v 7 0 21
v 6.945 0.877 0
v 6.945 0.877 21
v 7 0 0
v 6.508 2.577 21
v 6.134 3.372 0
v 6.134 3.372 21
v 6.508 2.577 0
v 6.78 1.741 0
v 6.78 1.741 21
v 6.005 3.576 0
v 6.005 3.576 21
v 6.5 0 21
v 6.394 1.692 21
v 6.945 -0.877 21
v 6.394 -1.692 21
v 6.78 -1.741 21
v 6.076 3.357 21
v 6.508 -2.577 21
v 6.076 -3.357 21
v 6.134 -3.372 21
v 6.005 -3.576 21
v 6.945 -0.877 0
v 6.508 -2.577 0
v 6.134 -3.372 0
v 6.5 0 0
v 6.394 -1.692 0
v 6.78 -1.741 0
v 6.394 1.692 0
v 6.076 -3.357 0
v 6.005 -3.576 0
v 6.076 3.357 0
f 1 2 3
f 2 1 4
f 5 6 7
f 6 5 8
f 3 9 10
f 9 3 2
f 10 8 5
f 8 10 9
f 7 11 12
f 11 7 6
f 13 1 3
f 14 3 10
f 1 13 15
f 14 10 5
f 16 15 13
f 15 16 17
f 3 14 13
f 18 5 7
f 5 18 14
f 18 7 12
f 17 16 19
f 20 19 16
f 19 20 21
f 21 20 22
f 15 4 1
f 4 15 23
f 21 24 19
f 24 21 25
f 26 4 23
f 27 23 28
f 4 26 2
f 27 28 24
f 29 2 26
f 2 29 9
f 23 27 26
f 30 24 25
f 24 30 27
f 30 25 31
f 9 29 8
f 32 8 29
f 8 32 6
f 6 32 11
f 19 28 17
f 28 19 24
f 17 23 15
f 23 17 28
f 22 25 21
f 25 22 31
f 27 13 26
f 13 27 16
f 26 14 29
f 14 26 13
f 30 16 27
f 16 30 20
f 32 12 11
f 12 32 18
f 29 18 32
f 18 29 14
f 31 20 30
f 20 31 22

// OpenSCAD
$fn = 50;


difference() {
	union() {
		cylinder(h = 21, r = 7.0000000000);
		translate(v = [-10.0000000000, 0, 0]) {
			cylinder(h = 21, r = 7.0000000000);
		}
	}
	union() {
		cylinder(h = 21, r = 3.2500000000);
		cylinder(h = 21, r = 1.8000000000);
		cylinder(h = 21, r = 1.8000000000);
		cylinder(h = 21, r = 1.8000000000);
		translate(v = [-14.5000000000, 0, 0]) {
			hull() {
				translate(v = [-3.7500000000, 0.0000000000, 0]) {
					cylinder(h = 21, r = 10.5000000000);
				}
				translate(v = [3.7500000000, 0.0000000000, 0]) {
					cylinder(h = 21, r = 10.5000000000);
				}
				translate(v = [-3.7500000000, -0.0000000000, 0]) {
					cylinder(h = 21, r = 10.5000000000);
				}
				translate(v = [3.7500000000, -0.0000000000, 0]) {
					cylinder(h = 21, r = 10.5000000000);
				}
			}
		}
		translate(v = [-7.0000000000, 0, 0.0000000000]) {
			cylinder(h = 21, r = 13.5000000000);
		}
	}
}
